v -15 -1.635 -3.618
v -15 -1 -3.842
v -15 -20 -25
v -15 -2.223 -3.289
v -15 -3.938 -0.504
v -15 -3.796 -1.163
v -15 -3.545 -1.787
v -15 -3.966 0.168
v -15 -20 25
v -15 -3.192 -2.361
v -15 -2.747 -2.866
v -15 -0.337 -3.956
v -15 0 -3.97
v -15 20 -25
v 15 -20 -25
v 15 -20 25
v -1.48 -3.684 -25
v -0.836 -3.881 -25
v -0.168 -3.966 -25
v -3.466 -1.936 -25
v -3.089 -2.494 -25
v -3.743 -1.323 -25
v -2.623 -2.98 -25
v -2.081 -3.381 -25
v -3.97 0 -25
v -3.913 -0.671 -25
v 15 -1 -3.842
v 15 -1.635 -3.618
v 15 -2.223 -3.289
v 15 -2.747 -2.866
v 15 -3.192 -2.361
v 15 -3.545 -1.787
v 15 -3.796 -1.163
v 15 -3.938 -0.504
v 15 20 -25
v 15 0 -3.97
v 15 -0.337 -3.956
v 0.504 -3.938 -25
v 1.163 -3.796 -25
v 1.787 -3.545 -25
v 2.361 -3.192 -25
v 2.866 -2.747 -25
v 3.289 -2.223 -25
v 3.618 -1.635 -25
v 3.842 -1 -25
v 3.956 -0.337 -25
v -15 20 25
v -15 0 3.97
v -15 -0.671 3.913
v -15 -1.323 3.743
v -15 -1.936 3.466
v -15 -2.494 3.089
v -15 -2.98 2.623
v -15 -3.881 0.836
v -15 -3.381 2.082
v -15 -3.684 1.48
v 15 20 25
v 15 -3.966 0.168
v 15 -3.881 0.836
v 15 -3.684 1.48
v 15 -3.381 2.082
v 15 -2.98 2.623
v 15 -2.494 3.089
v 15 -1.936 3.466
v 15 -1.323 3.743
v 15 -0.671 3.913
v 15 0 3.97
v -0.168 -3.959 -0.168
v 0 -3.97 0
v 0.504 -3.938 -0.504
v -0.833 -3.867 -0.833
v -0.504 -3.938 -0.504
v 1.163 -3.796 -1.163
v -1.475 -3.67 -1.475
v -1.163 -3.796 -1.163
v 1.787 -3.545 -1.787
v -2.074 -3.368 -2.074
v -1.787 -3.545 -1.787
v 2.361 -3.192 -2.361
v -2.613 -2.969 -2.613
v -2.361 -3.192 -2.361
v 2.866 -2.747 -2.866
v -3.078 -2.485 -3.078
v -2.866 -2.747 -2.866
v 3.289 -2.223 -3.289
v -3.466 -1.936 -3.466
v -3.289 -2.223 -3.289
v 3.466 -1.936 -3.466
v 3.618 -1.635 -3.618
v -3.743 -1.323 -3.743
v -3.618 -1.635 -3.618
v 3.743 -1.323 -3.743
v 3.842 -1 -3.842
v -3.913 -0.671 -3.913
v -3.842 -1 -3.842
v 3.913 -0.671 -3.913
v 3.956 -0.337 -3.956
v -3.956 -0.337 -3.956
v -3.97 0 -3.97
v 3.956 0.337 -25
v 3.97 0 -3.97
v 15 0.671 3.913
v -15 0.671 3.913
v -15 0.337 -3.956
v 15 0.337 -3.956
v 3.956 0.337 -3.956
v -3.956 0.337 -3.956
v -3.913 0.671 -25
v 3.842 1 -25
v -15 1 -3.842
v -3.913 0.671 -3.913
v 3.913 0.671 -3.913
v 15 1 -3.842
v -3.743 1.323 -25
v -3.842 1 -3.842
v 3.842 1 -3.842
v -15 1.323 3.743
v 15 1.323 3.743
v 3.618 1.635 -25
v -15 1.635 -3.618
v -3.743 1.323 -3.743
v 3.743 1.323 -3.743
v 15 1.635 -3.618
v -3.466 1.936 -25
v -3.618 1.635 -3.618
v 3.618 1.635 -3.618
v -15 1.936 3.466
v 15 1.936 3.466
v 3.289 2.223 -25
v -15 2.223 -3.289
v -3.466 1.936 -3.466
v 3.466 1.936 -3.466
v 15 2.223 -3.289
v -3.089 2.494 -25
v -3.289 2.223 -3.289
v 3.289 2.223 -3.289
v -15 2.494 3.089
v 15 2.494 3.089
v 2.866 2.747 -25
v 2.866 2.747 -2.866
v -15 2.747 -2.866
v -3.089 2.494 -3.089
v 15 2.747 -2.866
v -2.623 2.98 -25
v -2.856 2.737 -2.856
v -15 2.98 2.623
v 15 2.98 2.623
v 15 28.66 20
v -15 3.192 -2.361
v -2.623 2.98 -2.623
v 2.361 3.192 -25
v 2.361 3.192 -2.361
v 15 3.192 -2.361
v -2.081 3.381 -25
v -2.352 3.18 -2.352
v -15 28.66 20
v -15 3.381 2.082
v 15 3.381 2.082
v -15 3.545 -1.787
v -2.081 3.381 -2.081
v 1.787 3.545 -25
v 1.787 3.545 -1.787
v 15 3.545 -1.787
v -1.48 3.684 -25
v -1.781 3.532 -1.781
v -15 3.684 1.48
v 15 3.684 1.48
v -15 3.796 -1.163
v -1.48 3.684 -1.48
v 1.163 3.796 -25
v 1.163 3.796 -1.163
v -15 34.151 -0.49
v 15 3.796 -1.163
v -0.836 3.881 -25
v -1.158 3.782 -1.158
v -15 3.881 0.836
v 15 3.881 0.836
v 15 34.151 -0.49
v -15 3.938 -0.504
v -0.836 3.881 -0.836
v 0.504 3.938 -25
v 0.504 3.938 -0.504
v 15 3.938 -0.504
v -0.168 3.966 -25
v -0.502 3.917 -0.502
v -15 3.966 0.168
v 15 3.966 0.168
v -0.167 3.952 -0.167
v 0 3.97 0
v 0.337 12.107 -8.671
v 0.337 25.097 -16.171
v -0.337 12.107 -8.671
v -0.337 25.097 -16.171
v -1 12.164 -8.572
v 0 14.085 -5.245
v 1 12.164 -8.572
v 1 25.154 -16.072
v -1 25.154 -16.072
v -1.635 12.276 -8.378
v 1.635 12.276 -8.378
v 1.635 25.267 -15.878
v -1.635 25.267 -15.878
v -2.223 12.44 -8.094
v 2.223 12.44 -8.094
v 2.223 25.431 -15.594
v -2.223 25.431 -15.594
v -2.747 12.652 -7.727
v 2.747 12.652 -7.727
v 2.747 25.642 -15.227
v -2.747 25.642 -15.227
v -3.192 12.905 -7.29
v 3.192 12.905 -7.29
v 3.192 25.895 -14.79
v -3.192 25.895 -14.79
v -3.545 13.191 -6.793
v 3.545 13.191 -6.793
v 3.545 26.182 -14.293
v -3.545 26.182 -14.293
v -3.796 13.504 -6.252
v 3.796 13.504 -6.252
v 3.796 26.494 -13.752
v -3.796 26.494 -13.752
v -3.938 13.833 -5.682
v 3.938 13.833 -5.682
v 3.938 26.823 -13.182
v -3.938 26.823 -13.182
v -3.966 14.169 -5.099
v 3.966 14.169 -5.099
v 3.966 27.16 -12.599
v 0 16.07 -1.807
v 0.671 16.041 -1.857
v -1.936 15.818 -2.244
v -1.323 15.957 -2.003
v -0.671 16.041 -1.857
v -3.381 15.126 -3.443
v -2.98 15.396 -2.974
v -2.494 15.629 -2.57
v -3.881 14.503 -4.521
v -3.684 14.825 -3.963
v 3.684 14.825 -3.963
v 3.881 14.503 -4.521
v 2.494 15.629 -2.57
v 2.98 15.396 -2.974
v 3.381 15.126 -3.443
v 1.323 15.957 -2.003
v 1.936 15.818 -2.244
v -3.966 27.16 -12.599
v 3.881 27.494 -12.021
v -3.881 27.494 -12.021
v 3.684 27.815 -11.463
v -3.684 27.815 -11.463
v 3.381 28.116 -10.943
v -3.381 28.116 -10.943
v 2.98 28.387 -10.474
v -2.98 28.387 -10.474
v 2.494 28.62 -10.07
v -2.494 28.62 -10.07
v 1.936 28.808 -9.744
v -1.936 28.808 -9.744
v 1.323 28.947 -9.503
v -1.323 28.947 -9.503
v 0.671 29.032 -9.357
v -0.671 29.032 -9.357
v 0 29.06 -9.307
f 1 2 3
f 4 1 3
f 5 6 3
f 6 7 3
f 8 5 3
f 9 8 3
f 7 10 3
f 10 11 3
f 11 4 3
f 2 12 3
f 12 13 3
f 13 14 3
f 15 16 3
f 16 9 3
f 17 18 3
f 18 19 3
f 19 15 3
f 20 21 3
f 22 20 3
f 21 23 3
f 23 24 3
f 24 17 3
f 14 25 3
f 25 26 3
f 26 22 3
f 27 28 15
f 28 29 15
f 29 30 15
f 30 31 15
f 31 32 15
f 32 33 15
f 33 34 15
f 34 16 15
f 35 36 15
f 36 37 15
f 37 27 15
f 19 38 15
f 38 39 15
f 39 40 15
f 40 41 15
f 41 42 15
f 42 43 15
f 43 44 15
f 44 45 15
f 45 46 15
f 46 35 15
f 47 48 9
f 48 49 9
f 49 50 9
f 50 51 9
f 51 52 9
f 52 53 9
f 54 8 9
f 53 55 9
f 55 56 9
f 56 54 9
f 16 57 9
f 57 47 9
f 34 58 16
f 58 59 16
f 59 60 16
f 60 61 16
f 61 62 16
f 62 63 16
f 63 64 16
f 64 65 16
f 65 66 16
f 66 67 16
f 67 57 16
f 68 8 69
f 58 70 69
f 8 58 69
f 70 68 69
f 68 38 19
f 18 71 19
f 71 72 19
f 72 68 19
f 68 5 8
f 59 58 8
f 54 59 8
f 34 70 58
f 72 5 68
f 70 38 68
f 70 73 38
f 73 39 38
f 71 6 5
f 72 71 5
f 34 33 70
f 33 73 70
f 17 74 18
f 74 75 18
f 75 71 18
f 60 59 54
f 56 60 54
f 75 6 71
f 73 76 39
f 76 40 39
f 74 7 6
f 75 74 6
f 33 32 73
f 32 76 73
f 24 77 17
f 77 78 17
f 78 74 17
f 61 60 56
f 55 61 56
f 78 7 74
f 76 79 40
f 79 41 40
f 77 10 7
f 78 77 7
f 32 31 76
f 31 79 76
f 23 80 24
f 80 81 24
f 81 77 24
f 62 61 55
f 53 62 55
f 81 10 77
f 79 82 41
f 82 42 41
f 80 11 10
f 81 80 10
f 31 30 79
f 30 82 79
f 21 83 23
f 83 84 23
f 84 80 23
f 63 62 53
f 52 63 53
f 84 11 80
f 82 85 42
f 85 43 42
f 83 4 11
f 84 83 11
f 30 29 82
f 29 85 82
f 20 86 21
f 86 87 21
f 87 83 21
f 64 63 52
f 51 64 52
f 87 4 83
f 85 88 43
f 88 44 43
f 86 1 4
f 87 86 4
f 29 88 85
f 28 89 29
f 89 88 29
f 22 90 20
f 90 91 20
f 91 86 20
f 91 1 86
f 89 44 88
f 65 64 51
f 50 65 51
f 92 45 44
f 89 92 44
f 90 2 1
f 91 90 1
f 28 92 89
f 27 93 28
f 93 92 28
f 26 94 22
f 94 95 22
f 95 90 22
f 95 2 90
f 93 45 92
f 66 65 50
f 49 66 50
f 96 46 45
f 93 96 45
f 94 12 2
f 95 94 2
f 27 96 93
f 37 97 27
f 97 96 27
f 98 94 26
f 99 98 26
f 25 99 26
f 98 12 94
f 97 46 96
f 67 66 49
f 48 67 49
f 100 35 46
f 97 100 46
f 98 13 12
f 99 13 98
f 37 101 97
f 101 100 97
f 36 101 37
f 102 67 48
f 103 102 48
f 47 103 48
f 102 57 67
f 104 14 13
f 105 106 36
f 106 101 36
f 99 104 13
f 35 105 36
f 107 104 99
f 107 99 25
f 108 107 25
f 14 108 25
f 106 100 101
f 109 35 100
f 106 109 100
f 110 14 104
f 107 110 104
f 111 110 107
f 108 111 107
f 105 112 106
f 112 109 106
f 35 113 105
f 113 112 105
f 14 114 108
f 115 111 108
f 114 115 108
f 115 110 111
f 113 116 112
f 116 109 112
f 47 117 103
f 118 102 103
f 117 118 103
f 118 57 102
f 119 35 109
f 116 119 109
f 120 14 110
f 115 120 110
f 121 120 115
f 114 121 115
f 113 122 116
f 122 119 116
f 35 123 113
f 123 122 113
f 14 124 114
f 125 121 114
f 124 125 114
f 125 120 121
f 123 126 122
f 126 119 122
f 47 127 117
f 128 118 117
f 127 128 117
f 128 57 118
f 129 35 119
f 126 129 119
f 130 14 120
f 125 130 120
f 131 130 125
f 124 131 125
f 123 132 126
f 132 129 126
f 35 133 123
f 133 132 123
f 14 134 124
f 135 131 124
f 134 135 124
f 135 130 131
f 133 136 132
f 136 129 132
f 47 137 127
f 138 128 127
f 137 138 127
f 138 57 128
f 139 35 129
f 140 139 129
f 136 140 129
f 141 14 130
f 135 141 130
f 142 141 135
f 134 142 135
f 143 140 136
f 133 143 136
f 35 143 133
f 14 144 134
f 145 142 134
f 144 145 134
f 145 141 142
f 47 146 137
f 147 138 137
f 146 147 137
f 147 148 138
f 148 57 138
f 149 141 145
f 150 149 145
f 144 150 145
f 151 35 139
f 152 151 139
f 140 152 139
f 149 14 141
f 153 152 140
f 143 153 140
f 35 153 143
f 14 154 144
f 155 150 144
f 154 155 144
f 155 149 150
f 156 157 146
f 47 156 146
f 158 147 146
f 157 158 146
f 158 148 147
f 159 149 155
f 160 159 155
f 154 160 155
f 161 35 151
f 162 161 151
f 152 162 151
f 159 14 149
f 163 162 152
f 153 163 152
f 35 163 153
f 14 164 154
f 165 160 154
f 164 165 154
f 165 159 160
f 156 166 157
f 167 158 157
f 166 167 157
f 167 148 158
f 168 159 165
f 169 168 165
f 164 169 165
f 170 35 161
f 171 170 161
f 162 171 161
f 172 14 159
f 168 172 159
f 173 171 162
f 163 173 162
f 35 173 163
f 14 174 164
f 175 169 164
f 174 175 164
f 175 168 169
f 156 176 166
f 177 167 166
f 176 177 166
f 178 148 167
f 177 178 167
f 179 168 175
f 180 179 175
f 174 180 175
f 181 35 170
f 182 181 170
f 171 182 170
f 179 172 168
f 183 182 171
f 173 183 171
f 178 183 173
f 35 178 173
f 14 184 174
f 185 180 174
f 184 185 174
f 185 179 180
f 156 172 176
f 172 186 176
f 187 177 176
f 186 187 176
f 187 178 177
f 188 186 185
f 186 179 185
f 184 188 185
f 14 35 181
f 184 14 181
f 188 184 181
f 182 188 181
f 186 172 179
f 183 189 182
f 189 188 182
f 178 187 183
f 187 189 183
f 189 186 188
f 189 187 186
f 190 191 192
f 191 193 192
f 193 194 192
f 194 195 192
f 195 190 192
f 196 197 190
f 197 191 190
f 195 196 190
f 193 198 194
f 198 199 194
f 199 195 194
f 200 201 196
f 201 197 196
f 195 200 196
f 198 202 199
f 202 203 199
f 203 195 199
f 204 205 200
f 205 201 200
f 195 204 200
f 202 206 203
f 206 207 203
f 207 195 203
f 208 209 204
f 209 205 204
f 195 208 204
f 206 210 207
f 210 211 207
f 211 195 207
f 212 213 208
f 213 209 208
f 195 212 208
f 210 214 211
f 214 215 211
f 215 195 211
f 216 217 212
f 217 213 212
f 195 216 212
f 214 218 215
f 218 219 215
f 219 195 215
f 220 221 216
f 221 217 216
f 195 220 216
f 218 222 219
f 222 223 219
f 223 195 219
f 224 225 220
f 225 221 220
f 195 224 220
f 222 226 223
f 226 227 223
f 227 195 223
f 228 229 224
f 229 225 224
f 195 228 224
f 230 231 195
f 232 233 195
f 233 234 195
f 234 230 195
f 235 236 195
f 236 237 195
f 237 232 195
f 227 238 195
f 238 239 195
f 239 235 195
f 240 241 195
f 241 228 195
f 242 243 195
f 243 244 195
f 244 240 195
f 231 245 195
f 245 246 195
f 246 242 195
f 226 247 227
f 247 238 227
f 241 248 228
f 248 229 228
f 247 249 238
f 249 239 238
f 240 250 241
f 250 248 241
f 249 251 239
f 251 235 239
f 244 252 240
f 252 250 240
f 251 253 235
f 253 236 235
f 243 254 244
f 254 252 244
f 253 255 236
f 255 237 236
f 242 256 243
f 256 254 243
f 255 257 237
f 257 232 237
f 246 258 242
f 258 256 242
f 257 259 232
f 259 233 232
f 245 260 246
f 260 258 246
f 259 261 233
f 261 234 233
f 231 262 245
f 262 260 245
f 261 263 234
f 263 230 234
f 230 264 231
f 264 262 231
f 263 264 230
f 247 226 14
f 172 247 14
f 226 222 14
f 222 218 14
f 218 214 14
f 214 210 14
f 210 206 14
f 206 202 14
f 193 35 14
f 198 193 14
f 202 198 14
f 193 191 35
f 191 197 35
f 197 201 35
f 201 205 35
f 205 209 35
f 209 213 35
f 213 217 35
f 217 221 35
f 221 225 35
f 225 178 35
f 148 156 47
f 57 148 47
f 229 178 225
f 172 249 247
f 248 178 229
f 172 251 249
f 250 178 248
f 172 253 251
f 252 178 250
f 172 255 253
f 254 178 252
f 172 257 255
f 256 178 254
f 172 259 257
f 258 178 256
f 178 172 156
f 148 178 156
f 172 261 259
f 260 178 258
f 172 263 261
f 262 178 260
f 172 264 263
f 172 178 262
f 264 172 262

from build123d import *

# Parameters (mm, degrees)
ESBO_O1_R                = 3.97
RESSALTO_EXTRUS_O1_DEPTH = 15
ESBO_O3_R                = 3.97
CORTE_EXTRUS_O2_DEPTH    = 25
CHANFRO1_SIZE            = 15
ESBO_O4_R                = 3.97
CORTE_EXTRUS_O3_DEPTH    = 15


with BuildPart() as part:
    # Esboço1 → Ressalto-extrusão1 (new body, symmetric)
    with BuildSketch(Plane(origin=(0, 0, 0), x_dir=(0, 0, -1), z_dir=(1, 0, 0))):
        Polygon((25, -20), (-25, -20), (-25, 20), (-12.5, 41.650635095), (25, 20), align=None)
        Circle(ESBO_O1_R, mode=Mode.SUBTRACT)
    extrude(amount=RESSALTO_EXTRUS_O1_DEPTH, both=True)

    # Esboço3 → Corte-extrusão2 (cut)
    with BuildSketch(Plane(origin=(0, 0, -25), x_dir=(-1, 0, 0), z_dir=(0, 0, -1))):
        Circle(ESBO_O3_R)
    extrude(amount=-CORTE_EXTRUS_O2_DEPTH, mode=Mode.SUBTRACT)

    # Chanfro1
    chanfro1_edges = [part.edges().sort_by_distance(p)[0] for p in [
        (0, 41.650635095, 12.5),
    ]]
    chamfer(chanfro1_edges, length=CHANFRO1_SIZE)

    # Esboço4 → Corte-extrusão3 (cut)
    with BuildSketch(Plane(origin=(0, 25.825317547, -14.910254038), x_dir=(1, 0, 0), z_dir=(0, 0.866025404, -0.5))):
        with Locations((0, -2.5)):
            Circle(ESBO_O4_R)
    extrude(amount=-CORTE_EXTRUS_O3_DEPTH, mode=Mode.SUBTRACT)


solid = part.part
